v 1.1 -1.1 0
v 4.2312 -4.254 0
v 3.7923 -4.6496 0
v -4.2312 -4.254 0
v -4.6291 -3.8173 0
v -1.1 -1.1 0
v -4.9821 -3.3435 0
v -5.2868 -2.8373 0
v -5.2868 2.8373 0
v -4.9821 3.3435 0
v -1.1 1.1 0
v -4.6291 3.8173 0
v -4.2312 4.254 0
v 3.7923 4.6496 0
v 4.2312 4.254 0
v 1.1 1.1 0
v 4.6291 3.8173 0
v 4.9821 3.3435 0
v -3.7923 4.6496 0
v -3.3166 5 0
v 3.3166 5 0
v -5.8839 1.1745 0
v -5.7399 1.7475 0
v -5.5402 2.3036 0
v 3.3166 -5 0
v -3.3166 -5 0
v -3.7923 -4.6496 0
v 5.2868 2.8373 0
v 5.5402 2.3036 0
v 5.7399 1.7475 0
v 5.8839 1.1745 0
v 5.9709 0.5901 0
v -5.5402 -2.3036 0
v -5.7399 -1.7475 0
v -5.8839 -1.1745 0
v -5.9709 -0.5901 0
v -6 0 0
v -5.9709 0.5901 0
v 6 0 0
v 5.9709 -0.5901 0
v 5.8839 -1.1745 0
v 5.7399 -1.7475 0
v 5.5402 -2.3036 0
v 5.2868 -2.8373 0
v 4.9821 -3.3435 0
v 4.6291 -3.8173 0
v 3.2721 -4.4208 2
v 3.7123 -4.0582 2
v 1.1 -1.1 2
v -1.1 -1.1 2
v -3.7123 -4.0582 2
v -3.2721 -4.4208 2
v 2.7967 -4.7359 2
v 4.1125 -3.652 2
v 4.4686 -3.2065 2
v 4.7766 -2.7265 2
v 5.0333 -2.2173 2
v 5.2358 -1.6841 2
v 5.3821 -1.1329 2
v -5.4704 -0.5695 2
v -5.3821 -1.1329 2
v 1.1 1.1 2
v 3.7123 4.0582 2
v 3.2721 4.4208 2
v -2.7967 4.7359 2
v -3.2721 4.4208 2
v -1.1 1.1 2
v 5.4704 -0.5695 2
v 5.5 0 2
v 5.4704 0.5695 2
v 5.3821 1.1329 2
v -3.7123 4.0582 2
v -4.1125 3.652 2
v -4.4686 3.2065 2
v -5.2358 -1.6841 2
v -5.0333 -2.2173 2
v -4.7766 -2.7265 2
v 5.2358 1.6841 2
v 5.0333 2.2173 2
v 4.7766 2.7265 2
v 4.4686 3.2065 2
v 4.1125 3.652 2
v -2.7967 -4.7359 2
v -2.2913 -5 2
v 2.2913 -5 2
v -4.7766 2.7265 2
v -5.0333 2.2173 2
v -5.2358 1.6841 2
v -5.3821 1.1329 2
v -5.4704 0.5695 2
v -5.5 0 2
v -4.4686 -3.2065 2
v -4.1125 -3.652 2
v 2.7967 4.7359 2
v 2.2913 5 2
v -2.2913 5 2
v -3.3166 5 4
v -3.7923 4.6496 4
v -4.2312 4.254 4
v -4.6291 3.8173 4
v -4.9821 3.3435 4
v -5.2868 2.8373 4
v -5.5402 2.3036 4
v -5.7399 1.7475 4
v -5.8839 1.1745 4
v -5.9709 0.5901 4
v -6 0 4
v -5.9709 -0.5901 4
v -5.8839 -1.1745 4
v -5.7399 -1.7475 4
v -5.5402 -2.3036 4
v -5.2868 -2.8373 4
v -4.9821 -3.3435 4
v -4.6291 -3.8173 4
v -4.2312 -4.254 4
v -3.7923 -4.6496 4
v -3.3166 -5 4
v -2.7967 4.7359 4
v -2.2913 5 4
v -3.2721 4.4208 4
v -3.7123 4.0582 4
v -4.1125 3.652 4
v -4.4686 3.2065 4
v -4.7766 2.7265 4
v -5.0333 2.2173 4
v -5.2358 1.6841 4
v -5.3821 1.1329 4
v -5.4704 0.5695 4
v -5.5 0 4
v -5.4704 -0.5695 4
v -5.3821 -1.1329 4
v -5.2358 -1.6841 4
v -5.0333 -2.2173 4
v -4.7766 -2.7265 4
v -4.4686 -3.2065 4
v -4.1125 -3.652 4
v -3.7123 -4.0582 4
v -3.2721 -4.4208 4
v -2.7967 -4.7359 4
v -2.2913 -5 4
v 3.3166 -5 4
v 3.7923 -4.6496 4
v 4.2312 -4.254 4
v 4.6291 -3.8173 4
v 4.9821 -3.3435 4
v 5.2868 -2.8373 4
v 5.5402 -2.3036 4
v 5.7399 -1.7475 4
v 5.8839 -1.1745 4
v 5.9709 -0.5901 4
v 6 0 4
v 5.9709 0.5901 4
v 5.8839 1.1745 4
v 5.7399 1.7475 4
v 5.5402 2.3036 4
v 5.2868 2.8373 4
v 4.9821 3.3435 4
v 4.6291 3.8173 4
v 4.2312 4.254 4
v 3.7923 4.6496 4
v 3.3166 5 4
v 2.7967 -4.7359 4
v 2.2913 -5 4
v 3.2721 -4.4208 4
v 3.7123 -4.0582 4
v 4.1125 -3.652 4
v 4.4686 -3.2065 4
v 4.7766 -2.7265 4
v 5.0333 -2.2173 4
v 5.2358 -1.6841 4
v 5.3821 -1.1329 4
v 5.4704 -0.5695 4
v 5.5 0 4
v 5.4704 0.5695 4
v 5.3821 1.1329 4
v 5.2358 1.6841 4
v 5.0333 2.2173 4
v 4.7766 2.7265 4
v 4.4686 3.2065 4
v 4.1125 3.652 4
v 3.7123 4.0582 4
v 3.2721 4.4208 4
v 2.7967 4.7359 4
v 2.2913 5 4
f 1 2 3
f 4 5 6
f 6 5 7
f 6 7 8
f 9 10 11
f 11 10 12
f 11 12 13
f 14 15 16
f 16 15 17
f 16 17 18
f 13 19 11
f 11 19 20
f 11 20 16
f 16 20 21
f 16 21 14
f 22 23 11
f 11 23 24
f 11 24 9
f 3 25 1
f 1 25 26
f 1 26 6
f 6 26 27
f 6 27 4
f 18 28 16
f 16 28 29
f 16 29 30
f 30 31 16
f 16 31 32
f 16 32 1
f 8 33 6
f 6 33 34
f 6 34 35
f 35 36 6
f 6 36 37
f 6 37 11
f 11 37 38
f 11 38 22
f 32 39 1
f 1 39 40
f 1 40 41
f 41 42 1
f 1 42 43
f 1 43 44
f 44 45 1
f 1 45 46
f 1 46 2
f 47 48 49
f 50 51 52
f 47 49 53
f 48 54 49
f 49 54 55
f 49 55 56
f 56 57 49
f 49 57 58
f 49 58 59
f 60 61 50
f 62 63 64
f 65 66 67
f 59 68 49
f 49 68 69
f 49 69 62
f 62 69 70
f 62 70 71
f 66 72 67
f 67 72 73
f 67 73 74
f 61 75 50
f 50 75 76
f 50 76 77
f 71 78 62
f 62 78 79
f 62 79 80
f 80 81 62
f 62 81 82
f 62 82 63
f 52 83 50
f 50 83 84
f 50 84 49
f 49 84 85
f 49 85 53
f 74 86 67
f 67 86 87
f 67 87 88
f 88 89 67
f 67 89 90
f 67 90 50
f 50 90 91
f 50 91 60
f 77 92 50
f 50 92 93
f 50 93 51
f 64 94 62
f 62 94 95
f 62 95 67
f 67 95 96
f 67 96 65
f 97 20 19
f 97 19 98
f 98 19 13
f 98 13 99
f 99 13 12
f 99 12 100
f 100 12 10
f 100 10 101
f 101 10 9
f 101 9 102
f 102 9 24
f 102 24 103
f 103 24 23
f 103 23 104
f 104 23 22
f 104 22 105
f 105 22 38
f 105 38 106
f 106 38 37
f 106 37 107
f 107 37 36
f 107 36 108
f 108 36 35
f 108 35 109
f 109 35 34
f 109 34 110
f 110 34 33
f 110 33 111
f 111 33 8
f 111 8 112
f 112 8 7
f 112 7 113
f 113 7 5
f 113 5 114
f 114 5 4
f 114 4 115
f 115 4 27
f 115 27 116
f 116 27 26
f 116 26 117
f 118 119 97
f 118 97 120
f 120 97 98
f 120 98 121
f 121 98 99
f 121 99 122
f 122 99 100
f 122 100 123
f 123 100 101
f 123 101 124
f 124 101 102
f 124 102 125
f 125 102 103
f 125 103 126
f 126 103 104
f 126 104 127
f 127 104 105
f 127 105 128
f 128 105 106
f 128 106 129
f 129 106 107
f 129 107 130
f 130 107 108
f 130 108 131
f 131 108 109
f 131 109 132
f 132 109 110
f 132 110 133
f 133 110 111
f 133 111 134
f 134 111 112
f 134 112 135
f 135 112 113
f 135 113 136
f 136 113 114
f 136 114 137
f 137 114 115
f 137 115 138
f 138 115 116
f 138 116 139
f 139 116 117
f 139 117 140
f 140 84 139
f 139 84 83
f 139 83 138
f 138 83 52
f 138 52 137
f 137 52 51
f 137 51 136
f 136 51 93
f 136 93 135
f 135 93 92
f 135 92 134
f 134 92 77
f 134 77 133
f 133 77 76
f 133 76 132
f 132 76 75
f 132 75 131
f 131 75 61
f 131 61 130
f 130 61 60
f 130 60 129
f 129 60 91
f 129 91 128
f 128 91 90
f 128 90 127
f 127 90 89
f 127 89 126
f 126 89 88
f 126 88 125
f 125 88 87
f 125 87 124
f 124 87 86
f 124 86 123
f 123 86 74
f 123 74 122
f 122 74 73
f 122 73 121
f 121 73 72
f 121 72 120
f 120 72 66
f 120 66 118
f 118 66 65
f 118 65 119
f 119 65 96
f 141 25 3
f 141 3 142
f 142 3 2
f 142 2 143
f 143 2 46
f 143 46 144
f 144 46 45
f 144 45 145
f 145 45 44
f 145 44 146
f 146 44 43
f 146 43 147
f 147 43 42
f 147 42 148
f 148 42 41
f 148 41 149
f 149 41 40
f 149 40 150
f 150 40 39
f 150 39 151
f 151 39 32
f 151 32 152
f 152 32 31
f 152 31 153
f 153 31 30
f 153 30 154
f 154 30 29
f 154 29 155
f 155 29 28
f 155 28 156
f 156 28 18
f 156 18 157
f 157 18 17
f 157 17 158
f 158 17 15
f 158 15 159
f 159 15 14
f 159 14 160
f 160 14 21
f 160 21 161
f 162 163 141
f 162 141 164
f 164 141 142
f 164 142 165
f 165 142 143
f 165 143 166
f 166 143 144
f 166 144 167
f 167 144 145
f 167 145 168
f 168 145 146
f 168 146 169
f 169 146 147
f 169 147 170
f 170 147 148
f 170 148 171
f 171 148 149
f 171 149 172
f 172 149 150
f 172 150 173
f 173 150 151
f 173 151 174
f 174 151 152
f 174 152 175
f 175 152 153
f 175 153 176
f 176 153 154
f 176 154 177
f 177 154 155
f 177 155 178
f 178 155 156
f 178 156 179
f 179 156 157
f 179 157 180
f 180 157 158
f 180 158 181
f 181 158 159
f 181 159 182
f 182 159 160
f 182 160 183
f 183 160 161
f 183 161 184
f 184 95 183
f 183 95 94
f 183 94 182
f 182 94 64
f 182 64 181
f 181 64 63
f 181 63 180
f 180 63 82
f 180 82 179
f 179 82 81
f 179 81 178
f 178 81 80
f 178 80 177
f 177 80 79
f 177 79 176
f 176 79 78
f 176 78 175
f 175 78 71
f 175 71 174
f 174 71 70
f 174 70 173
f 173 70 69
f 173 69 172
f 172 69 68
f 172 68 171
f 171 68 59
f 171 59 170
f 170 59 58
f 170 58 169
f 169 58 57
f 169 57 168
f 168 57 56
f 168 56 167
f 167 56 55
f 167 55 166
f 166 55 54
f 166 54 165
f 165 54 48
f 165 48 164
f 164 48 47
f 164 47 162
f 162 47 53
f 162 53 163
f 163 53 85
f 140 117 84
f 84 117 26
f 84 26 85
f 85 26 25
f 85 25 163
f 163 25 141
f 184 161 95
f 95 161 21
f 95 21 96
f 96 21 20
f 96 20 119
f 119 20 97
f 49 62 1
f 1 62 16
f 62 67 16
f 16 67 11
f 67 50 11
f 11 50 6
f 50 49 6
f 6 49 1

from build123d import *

# Parameters (mm, degrees)
SKETCH1_R           = 6
BOSS_EXTRUDE1_DEPTH = 2
SKETCH2_R           = 6
SKETCH2_R_2         = 5.5
BOSS_EXTRUDE2_DEPTH = 2
SKETCH7_W           = 24
SKETCH7_H           = 12
SKETCH7_W_2         = 20
SKETCH7_H_2         = 10
CUT_EXTRUDE1_DEPTH  = 6
SKETCH4_W           = 2.2
SKETCH4_H           = 2.2
CUT_EXTRUDE2_DEPTH  = 2


with BuildPart() as part:
    # Sketch1 → Boss-Extrude1 (new body)
    with BuildSketch(Plane.XY):
        Circle(SKETCH1_R)
    extrude(amount=BOSS_EXTRUDE1_DEPTH)

    # Sketch2 → Boss-Extrude2 (add)
    with BuildSketch(Plane.XY.offset(2)):
        Circle(SKETCH2_R)
        Circle(SKETCH2_R_2, mode=Mode.SUBTRACT)
    extrude(amount=BOSS_EXTRUDE2_DEPTH)

    # Sketch7 → Cut-Extrude1 (cut)
    with BuildSketch(Plane.XY):
        Rectangle(SKETCH7_W, SKETCH7_H)
        Rectangle(SKETCH7_W_2, SKETCH7_H_2, mode=Mode.SUBTRACT)
    extrude(amount=CUT_EXTRUDE1_DEPTH, mode=Mode.SUBTRACT)

    # Sketch4 → Cut-Extrude2 (cut)
    with BuildSketch(Plane.XY):
        Rectangle(SKETCH4_W, SKETCH4_H)
    extrude(amount=CUT_EXTRUDE2_DEPTH, mode=Mode.SUBTRACT)


solid = part.part
